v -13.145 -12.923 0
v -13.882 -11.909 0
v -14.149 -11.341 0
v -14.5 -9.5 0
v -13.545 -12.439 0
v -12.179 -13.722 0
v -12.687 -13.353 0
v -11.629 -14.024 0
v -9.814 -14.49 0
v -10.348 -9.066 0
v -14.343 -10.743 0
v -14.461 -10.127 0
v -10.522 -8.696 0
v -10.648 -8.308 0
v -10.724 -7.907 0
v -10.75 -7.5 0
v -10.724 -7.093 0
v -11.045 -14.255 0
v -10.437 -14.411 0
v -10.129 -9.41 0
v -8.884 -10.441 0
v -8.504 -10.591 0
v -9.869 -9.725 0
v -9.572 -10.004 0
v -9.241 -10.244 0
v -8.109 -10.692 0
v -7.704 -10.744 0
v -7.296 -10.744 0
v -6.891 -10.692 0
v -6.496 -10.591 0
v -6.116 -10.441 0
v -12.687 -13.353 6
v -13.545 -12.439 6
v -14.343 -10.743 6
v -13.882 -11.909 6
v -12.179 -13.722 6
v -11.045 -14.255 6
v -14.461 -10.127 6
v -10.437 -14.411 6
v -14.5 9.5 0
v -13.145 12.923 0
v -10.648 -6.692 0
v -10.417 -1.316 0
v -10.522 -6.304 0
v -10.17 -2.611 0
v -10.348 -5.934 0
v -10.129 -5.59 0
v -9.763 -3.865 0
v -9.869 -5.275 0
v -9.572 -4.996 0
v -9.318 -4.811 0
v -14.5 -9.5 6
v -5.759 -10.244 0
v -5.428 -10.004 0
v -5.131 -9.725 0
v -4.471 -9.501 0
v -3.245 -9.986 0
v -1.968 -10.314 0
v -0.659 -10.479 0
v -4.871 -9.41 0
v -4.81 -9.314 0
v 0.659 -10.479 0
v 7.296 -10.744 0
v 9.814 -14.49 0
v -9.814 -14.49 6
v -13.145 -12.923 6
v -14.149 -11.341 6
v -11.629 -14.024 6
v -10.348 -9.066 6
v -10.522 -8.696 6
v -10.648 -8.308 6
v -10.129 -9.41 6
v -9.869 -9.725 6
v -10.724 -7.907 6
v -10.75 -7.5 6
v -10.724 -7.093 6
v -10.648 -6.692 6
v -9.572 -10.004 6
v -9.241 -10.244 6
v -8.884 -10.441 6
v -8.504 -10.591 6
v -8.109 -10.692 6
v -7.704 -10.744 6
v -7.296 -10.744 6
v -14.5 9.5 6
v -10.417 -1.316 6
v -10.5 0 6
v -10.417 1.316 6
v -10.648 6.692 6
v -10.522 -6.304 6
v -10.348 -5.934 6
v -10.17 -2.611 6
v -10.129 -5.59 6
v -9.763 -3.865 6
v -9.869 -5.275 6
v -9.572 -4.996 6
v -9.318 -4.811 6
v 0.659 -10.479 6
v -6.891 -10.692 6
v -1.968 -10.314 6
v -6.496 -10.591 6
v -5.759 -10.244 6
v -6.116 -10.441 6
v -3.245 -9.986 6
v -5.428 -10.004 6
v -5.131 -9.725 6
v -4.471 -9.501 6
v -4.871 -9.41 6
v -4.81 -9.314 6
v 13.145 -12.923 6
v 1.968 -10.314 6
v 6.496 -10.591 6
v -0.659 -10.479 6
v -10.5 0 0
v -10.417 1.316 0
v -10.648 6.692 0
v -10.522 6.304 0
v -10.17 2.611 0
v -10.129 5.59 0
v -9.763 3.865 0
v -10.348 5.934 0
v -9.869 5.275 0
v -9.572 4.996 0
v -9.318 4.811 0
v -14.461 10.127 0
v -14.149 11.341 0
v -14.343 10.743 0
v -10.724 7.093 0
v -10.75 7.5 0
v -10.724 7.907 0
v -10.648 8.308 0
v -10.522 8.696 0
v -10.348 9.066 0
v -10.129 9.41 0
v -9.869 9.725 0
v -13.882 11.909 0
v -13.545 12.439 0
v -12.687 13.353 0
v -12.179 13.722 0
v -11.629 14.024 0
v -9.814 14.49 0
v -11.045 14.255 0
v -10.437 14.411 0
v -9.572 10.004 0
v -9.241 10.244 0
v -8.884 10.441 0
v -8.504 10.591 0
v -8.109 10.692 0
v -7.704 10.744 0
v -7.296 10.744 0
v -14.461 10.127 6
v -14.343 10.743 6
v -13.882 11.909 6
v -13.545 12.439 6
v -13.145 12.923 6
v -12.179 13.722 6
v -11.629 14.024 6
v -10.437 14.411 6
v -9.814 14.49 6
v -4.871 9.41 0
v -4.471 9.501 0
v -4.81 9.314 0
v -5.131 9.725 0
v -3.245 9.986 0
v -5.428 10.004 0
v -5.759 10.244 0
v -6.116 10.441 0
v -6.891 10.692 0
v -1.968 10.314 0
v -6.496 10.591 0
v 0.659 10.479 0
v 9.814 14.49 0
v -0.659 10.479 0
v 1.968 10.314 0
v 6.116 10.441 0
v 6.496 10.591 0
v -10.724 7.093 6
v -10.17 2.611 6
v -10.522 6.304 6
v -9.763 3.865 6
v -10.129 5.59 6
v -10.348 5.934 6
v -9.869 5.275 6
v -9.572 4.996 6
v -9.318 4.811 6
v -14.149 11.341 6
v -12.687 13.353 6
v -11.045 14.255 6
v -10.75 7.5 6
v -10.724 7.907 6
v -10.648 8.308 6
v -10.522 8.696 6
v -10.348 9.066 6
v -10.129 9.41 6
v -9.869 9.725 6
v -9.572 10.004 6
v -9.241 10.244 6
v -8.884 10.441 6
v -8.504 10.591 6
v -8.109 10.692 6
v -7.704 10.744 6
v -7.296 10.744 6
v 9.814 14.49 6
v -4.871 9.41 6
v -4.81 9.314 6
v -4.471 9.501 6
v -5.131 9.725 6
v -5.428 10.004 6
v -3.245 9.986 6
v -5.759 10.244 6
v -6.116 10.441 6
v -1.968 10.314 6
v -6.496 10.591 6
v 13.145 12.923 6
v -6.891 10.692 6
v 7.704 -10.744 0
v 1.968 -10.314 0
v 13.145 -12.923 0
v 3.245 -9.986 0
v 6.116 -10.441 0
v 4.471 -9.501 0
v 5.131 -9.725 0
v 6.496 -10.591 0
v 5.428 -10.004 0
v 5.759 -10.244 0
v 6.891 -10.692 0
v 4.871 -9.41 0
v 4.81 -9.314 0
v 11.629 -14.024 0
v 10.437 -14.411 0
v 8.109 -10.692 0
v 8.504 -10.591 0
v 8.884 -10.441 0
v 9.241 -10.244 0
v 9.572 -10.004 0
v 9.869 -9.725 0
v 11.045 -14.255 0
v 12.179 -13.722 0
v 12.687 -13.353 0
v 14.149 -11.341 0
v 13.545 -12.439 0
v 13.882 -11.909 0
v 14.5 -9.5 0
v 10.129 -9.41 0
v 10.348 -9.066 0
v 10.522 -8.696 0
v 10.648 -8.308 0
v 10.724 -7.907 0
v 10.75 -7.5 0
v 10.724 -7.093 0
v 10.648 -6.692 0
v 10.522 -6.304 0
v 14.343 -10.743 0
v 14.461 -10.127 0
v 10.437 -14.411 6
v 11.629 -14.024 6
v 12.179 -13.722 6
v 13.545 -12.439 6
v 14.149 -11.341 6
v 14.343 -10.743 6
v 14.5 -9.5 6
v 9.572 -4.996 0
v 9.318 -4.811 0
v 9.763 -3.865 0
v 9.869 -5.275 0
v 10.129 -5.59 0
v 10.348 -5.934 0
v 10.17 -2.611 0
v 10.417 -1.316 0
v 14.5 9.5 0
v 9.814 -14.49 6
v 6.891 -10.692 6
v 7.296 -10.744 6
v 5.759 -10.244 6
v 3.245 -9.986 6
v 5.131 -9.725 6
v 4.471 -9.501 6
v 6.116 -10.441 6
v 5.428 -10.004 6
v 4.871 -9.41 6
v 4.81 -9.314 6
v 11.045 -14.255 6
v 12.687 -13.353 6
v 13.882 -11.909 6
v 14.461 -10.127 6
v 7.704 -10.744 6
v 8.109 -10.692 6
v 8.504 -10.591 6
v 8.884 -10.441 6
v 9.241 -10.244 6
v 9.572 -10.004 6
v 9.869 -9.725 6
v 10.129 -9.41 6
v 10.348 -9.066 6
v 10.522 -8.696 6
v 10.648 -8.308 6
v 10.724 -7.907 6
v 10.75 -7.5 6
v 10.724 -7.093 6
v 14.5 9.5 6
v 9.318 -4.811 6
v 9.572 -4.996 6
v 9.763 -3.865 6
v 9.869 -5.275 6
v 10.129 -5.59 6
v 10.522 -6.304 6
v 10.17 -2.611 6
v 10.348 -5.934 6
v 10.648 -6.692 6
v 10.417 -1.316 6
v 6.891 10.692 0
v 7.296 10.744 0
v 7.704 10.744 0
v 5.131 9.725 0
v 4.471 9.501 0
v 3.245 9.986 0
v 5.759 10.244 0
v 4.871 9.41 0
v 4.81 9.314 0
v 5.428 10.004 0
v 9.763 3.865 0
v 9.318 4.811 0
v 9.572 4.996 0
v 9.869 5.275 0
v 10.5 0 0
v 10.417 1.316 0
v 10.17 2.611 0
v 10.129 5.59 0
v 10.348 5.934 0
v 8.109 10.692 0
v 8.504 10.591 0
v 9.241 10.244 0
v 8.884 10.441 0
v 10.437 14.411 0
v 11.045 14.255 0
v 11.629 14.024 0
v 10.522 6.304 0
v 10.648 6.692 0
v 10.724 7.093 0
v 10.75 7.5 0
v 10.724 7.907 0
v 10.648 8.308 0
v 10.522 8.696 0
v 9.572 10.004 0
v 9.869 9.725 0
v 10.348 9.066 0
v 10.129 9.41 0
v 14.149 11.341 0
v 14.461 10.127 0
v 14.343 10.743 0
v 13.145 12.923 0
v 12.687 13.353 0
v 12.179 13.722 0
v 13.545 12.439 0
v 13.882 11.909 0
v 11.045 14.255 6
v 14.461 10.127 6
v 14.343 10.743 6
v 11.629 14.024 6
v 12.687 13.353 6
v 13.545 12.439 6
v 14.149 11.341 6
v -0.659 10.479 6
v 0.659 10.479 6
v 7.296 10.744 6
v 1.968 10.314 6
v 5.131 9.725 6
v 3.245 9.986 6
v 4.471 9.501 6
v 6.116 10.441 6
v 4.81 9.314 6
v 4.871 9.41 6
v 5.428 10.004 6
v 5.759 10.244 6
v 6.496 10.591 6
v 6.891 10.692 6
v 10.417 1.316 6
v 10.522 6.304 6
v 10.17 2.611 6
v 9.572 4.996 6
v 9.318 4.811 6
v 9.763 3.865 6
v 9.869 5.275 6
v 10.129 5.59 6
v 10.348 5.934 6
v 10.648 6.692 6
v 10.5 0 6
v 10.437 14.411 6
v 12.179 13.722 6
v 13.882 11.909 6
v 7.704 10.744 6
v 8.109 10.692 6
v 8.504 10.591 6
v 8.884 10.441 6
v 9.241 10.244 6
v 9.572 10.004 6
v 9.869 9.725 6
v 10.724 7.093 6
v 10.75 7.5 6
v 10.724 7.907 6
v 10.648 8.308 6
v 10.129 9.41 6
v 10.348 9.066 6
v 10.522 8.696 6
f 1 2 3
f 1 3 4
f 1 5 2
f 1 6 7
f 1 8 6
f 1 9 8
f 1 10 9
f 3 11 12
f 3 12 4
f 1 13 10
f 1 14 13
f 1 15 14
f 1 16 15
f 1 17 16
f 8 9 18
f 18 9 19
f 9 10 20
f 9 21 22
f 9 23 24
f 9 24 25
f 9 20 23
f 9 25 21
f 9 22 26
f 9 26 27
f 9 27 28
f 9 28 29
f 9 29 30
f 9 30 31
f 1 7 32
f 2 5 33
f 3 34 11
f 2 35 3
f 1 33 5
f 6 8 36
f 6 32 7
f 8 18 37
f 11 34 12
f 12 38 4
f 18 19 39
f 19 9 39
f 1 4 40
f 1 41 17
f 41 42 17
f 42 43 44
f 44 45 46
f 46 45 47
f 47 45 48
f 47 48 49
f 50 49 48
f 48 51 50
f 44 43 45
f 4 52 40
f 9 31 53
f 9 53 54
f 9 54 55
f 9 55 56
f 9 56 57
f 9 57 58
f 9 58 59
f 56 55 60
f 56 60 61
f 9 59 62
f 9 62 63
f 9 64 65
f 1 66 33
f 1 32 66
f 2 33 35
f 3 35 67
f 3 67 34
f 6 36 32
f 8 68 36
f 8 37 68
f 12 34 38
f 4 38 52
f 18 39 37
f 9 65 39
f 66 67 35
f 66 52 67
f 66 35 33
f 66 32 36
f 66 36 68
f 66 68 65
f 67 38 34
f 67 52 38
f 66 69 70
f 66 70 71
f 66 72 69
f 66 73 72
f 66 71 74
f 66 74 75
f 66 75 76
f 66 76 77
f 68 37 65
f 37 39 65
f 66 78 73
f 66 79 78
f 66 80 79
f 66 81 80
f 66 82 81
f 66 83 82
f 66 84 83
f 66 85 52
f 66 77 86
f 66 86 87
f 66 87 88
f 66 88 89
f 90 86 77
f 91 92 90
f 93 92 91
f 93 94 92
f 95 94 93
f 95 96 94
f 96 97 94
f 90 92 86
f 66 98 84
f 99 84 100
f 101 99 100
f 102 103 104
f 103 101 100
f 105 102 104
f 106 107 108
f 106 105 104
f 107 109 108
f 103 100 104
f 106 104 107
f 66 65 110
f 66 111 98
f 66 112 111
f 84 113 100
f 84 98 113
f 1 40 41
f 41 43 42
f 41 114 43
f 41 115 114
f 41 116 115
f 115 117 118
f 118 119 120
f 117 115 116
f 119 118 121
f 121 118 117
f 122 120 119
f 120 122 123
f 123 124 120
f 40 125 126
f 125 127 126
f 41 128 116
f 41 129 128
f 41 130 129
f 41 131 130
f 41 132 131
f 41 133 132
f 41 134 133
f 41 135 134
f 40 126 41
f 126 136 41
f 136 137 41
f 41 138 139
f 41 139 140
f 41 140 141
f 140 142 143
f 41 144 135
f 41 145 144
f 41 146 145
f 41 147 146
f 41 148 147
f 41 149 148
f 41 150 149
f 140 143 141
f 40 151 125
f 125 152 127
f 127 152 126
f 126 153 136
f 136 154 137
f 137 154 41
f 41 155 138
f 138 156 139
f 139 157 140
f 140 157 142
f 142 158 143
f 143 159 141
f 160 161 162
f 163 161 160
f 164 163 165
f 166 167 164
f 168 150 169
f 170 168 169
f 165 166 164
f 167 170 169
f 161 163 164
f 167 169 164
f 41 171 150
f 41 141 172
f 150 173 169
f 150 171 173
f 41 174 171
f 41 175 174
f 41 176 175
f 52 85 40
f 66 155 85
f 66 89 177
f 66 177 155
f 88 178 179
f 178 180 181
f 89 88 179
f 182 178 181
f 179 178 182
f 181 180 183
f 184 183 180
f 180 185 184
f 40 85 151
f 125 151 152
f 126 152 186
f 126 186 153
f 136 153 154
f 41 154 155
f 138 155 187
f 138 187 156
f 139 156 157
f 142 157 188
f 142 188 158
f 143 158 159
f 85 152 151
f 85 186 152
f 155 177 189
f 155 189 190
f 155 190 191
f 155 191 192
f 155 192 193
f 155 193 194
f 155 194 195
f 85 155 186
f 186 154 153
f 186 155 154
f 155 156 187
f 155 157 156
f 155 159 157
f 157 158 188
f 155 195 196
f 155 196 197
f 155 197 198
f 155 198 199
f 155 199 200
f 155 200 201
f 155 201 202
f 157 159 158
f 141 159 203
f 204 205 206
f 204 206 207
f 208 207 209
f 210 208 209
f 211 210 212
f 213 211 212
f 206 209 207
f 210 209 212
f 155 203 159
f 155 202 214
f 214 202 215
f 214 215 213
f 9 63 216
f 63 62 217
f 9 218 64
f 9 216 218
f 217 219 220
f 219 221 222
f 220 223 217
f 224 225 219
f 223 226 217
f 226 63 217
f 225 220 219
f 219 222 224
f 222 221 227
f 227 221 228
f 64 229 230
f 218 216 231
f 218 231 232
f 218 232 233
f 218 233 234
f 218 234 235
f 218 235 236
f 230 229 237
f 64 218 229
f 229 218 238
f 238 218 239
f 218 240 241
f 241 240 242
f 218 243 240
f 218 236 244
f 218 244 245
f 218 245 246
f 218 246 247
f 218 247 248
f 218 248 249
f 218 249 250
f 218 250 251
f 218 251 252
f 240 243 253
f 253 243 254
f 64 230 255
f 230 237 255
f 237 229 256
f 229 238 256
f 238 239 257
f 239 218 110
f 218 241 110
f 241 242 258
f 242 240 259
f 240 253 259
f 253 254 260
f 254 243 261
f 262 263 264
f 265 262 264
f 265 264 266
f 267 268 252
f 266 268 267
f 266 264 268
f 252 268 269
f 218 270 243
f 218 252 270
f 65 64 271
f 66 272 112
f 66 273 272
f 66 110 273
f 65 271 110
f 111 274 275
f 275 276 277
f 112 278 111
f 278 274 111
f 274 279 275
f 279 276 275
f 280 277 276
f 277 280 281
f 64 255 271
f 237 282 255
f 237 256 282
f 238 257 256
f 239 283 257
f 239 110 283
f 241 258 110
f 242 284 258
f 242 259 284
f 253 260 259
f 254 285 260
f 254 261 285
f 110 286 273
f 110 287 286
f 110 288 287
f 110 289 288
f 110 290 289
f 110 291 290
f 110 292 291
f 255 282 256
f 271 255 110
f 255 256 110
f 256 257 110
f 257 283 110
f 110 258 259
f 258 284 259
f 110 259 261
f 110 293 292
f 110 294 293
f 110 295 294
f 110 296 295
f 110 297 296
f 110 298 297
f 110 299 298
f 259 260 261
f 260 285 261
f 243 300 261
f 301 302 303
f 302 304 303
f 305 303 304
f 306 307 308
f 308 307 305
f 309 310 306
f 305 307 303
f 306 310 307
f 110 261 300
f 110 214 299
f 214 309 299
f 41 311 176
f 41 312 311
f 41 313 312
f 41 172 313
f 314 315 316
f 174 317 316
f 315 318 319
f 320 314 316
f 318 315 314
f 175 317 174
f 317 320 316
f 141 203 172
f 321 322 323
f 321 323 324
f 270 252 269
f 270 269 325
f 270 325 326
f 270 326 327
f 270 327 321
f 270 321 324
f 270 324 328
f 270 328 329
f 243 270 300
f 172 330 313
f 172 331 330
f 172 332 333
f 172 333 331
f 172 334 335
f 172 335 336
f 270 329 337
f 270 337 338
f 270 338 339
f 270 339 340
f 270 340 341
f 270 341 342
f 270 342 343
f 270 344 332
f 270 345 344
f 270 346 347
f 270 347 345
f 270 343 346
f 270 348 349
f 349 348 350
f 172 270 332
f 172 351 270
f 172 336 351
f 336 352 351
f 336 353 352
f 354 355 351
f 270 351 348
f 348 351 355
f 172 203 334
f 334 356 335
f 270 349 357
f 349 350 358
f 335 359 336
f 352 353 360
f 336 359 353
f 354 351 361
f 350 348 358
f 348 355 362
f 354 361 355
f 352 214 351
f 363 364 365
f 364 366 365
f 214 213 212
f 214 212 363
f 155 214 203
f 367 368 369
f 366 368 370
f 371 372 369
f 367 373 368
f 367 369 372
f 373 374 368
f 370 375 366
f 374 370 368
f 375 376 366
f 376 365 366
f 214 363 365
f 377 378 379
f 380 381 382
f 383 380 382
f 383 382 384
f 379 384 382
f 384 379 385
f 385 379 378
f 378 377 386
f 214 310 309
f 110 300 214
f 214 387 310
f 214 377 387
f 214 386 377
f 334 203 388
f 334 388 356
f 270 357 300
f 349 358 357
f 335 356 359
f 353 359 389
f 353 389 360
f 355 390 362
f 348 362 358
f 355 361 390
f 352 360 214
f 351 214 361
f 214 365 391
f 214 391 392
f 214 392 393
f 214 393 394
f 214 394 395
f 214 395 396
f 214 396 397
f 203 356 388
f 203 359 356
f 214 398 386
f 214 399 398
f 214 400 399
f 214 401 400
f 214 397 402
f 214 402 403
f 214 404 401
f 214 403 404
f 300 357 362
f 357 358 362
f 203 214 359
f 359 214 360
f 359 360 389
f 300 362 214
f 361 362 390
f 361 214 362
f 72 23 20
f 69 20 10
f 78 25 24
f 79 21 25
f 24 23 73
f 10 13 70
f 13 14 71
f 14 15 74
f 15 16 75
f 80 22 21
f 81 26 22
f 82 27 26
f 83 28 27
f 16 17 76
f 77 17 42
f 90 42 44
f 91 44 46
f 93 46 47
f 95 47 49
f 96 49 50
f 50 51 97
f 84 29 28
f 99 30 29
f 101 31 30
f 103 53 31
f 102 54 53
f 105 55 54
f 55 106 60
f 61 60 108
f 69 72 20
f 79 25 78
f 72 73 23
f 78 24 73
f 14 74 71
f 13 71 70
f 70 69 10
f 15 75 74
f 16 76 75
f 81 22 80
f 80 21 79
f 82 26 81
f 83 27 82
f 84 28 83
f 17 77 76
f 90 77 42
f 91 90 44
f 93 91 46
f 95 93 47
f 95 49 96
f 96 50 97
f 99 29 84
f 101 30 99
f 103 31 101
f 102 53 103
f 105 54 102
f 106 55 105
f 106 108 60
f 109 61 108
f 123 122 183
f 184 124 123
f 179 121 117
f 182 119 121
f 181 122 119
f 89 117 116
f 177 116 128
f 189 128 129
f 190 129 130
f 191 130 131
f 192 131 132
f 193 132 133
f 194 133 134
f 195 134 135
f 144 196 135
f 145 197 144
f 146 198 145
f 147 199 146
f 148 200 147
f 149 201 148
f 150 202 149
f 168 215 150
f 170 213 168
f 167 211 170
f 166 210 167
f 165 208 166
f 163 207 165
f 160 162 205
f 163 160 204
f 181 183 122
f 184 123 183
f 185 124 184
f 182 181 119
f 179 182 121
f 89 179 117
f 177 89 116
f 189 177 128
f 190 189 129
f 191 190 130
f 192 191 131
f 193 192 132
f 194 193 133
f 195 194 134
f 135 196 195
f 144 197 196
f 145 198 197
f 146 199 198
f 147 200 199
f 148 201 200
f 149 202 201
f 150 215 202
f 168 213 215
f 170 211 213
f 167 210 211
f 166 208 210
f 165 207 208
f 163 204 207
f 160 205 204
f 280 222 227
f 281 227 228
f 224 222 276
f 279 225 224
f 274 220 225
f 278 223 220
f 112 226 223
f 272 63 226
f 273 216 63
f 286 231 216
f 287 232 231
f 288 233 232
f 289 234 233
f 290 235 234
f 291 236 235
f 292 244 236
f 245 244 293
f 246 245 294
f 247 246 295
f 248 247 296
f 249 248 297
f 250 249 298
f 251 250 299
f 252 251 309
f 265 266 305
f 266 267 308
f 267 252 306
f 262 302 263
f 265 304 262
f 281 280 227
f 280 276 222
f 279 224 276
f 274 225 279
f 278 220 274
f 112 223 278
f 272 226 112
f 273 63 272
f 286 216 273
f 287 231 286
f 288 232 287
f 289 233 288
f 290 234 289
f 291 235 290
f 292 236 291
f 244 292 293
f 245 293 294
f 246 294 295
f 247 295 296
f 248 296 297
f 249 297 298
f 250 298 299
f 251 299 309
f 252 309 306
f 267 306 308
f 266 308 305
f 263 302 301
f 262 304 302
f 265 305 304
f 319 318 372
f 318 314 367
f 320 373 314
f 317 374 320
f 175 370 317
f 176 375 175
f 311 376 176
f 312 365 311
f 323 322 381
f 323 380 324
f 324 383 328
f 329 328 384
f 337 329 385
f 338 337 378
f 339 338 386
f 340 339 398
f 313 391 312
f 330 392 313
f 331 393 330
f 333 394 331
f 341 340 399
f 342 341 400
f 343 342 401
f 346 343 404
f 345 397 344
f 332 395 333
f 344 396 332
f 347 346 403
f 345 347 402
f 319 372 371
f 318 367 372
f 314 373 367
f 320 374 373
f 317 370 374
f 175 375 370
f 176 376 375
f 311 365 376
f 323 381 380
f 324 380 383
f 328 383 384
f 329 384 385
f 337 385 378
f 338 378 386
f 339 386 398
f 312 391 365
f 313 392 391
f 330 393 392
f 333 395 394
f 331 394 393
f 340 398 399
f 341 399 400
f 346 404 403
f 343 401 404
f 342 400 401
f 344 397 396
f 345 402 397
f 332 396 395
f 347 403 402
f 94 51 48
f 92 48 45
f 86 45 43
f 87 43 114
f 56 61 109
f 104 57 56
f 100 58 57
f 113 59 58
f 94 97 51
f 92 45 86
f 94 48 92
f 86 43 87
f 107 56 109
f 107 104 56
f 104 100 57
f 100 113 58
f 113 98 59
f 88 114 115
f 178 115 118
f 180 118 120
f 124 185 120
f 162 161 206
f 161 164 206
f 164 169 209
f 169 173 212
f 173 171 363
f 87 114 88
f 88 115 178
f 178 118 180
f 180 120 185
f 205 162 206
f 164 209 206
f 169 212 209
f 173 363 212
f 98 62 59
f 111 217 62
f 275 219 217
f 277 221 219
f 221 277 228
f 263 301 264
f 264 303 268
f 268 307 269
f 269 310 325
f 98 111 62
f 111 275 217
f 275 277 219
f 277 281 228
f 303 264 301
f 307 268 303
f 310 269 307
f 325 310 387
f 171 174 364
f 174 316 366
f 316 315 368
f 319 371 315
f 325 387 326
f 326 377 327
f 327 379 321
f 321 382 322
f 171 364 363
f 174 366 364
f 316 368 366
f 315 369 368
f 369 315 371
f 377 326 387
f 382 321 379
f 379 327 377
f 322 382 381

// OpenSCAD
$fn = 50;

difference() {
	union() {
		hull() {
			translate(v = [-9.5, 9.5, 0]) {
				cylinder(h = 6, r = 5);
			}
			translate(v = [9.5, 9.5, 0]) {
				cylinder(h = 6, r = 5);
			}
			translate(v = [-9.5, -9.5, 0]) {
				cylinder(h = 6, r = 5);
			}
			translate(v = [9.5, -9.5, 0]) {
				cylinder(h = 6, r = 5);
			}
		}
	}
	union() {
		translate(v = [-7.5, -7.5, -100.0]) {
			cylinder(h = 200, r = 3.25);
		}
		translate(v = [-7.5, 7.5, -100.0]) {
			cylinder(h = 200, r = 3.25);
		}
		translate(v = [7.5, -7.5, -100.0]) {
			cylinder(h = 200, r = 3.25);
		}
		translate(v = [7.5, 7.5, -100.0]) {
			cylinder(h = 200, r = 3.25);
		}
		translate(v = [-7.5, -7.5, -100.0]) {
			cylinder(h = 200, r = 1.8);
		}
		translate(v = [-7.5, 7.5, -100.0]) {
			cylinder(h = 200, r = 1.8);
		}
		translate(v = [7.5, -7.5, -100.0]) {
			cylinder(h = 200, r = 1.8);
		}
		translate(v = [7.5, 7.5, -100.0]) {
			cylinder(h = 200, r = 1.8);
		}
		cylinder(h = 6, r = 10.5);
	}
}
